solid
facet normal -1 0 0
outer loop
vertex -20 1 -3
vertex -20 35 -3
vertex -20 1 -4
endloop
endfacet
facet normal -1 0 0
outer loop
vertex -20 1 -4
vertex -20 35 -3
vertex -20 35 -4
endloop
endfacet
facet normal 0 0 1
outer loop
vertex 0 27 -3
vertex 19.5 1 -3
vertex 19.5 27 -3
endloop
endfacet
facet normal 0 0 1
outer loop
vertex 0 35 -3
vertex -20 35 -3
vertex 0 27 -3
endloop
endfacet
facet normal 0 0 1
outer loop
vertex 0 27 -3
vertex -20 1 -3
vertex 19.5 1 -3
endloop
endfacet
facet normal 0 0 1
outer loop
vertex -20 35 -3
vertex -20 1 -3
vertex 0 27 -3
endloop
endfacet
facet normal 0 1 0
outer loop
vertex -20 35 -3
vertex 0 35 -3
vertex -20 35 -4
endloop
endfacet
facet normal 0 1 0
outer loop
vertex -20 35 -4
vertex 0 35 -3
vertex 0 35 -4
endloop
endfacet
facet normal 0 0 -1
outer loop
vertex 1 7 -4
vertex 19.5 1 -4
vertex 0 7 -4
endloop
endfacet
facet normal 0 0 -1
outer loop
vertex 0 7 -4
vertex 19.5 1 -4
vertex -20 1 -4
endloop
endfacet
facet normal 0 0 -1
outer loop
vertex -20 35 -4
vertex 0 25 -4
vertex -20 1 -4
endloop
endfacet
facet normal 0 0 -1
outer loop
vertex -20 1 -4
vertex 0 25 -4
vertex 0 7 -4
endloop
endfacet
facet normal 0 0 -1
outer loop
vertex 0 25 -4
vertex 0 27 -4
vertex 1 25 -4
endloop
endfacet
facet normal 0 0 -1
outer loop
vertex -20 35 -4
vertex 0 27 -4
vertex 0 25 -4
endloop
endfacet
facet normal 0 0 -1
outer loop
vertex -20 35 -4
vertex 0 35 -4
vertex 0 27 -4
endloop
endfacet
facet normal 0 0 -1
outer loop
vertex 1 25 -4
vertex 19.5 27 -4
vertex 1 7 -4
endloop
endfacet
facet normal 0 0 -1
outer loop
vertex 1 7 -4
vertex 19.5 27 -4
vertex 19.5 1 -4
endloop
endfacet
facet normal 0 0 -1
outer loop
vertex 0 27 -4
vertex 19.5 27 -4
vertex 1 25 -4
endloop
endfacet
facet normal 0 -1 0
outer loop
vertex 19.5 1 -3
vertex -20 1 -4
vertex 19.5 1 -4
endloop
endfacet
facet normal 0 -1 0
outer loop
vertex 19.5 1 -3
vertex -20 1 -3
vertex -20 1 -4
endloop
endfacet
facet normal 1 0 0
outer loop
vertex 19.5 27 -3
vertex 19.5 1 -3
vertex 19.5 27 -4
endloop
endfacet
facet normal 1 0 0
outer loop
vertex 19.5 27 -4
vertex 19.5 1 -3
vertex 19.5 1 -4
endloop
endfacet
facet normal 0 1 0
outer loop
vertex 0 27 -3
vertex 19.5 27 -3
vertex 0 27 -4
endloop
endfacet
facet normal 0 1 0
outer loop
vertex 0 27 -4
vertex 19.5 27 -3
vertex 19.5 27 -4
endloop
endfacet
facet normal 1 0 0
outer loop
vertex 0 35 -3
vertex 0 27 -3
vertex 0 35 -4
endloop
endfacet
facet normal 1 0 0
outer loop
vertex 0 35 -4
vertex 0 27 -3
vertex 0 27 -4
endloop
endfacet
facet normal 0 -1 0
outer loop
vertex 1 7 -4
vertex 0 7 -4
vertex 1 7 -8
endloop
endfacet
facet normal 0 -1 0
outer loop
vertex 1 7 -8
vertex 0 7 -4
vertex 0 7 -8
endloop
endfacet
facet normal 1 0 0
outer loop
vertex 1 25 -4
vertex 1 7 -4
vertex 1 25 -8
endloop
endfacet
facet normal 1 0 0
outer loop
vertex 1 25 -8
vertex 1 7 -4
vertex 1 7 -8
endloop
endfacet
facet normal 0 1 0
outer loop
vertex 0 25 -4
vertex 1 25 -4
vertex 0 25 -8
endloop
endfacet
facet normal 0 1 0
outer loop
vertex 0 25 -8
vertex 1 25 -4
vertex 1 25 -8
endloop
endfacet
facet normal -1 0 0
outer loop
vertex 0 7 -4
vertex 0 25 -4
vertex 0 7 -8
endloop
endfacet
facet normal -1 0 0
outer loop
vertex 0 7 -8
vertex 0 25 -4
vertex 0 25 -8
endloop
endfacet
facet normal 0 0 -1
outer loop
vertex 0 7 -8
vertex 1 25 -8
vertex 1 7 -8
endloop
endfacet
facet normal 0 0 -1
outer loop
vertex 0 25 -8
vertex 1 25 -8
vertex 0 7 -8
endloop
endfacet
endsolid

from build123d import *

# Parameters (mm, degrees)
SKETCH_W        = 41.5
SKETCH_H        = 36
PAD_DEPTH       = 6
POCKET_DEPTH    = 5
SKETCH002_W     = 19.5
SKETCH002_H     = 8
POCKET001_DEPTH = 6.001
POCKET002_DEPTH = 1
SKETCH005_W     = 1
SKETCH005_H     = 19
PAD001_DEPTH    = 4
PAD002_DEPTH    = 10
SKETCH007_W     = 52.700282
SKETCH007_H     = 20.841337
POCKET003_DEPTH = 41.501
SKETCH008_W     = 1
SKETCH008_H     = 18
PAD003_DEPTH    = 4


with BuildPart() as part:
    # Sketch → Pad (new body)
    with BuildSketch(Plane.XY):
        with Locations((-0.25, 18)):
            Rectangle(SKETCH_W, SKETCH_H)
    extrude(amount=PAD_DEPTH)

    # Sketch001 (on Face6 of Pad) → Pocket (cut)
    with BuildSketch(Plane.XY.offset(6)):
        Polygon((-19, 2), (18.5, 2), (18.5, 26), (-1, 26), (-1, 34), (-19, 34), align=None)
    extrude(amount=-POCKET_DEPTH, mode=Mode.SUBTRACT)

    # Sketch002 (on Face5 of Pocket) → Pocket001 (cut, through all)
    with BuildSketch(Plane.XY.offset(6)):
        with Locations((10.75, 32)):
            Rectangle(SKETCH002_W, SKETCH002_H)
    extrude(amount=-POCKET001_DEPTH, mode=Mode.SUBTRACT)

    # Sketch004 (on Face5 of Pocket001) → Pocket002 (cut)
    with BuildSketch(Plane.XY.offset(6)):
        Polygon((-20, 35), (0, 35), (0, 27), (19.5, 27), (19.5, 1), (-20, 1), align=None)
    extrude(amount=-POCKET002_DEPTH, mode=Mode.SUBTRACT)

    # Sketch005 (on Face22 of Pocket002) → Pad001 (join)
    with BuildSketch(Plane.XY.offset(1)):
        with Locations((-0.5, 16.5)):
            Rectangle(SKETCH005_W, SKETCH005_H)
    extrude(amount=PAD001_DEPTH)

    # Sketch006 (on Face5 of Pad001) → Pad002 (join)
    with BuildSketch(Plane.XY.offset(6)):
        Polygon((-20, 35), (0, 35), (0, 27), (19.5, 27), (19.5, 1), (-20, 1), align=None)
    extrude(amount=-PAD002_DEPTH)

    # Sketch007 (on Face2 of Pad002) → Pocket003 (cut, through all)
    with BuildSketch(Plane(origin=(-21, 0, 0), x_dir=(0, -1, 0), z_dir=(-1, 0, 0))):
        with Locations((-14.885127, 7.420668)):
            Rectangle(SKETCH007_W, SKETCH007_H)
    extrude(amount=-POCKET003_DEPTH, mode=Mode.SUBTRACT)

    # Sketch008 (on Face4 of Pocket003) → Pad003 (join)
    with BuildSketch(Plane(origin=(0, 0, -4), x_dir=(1, 0, 0), z_dir=(0, 0, -1))):
        with Locations((0.5, -16)):
            Rectangle(SKETCH008_W, SKETCH008_H)
    extrude(amount=PAD003_DEPTH)


solid = part.part
